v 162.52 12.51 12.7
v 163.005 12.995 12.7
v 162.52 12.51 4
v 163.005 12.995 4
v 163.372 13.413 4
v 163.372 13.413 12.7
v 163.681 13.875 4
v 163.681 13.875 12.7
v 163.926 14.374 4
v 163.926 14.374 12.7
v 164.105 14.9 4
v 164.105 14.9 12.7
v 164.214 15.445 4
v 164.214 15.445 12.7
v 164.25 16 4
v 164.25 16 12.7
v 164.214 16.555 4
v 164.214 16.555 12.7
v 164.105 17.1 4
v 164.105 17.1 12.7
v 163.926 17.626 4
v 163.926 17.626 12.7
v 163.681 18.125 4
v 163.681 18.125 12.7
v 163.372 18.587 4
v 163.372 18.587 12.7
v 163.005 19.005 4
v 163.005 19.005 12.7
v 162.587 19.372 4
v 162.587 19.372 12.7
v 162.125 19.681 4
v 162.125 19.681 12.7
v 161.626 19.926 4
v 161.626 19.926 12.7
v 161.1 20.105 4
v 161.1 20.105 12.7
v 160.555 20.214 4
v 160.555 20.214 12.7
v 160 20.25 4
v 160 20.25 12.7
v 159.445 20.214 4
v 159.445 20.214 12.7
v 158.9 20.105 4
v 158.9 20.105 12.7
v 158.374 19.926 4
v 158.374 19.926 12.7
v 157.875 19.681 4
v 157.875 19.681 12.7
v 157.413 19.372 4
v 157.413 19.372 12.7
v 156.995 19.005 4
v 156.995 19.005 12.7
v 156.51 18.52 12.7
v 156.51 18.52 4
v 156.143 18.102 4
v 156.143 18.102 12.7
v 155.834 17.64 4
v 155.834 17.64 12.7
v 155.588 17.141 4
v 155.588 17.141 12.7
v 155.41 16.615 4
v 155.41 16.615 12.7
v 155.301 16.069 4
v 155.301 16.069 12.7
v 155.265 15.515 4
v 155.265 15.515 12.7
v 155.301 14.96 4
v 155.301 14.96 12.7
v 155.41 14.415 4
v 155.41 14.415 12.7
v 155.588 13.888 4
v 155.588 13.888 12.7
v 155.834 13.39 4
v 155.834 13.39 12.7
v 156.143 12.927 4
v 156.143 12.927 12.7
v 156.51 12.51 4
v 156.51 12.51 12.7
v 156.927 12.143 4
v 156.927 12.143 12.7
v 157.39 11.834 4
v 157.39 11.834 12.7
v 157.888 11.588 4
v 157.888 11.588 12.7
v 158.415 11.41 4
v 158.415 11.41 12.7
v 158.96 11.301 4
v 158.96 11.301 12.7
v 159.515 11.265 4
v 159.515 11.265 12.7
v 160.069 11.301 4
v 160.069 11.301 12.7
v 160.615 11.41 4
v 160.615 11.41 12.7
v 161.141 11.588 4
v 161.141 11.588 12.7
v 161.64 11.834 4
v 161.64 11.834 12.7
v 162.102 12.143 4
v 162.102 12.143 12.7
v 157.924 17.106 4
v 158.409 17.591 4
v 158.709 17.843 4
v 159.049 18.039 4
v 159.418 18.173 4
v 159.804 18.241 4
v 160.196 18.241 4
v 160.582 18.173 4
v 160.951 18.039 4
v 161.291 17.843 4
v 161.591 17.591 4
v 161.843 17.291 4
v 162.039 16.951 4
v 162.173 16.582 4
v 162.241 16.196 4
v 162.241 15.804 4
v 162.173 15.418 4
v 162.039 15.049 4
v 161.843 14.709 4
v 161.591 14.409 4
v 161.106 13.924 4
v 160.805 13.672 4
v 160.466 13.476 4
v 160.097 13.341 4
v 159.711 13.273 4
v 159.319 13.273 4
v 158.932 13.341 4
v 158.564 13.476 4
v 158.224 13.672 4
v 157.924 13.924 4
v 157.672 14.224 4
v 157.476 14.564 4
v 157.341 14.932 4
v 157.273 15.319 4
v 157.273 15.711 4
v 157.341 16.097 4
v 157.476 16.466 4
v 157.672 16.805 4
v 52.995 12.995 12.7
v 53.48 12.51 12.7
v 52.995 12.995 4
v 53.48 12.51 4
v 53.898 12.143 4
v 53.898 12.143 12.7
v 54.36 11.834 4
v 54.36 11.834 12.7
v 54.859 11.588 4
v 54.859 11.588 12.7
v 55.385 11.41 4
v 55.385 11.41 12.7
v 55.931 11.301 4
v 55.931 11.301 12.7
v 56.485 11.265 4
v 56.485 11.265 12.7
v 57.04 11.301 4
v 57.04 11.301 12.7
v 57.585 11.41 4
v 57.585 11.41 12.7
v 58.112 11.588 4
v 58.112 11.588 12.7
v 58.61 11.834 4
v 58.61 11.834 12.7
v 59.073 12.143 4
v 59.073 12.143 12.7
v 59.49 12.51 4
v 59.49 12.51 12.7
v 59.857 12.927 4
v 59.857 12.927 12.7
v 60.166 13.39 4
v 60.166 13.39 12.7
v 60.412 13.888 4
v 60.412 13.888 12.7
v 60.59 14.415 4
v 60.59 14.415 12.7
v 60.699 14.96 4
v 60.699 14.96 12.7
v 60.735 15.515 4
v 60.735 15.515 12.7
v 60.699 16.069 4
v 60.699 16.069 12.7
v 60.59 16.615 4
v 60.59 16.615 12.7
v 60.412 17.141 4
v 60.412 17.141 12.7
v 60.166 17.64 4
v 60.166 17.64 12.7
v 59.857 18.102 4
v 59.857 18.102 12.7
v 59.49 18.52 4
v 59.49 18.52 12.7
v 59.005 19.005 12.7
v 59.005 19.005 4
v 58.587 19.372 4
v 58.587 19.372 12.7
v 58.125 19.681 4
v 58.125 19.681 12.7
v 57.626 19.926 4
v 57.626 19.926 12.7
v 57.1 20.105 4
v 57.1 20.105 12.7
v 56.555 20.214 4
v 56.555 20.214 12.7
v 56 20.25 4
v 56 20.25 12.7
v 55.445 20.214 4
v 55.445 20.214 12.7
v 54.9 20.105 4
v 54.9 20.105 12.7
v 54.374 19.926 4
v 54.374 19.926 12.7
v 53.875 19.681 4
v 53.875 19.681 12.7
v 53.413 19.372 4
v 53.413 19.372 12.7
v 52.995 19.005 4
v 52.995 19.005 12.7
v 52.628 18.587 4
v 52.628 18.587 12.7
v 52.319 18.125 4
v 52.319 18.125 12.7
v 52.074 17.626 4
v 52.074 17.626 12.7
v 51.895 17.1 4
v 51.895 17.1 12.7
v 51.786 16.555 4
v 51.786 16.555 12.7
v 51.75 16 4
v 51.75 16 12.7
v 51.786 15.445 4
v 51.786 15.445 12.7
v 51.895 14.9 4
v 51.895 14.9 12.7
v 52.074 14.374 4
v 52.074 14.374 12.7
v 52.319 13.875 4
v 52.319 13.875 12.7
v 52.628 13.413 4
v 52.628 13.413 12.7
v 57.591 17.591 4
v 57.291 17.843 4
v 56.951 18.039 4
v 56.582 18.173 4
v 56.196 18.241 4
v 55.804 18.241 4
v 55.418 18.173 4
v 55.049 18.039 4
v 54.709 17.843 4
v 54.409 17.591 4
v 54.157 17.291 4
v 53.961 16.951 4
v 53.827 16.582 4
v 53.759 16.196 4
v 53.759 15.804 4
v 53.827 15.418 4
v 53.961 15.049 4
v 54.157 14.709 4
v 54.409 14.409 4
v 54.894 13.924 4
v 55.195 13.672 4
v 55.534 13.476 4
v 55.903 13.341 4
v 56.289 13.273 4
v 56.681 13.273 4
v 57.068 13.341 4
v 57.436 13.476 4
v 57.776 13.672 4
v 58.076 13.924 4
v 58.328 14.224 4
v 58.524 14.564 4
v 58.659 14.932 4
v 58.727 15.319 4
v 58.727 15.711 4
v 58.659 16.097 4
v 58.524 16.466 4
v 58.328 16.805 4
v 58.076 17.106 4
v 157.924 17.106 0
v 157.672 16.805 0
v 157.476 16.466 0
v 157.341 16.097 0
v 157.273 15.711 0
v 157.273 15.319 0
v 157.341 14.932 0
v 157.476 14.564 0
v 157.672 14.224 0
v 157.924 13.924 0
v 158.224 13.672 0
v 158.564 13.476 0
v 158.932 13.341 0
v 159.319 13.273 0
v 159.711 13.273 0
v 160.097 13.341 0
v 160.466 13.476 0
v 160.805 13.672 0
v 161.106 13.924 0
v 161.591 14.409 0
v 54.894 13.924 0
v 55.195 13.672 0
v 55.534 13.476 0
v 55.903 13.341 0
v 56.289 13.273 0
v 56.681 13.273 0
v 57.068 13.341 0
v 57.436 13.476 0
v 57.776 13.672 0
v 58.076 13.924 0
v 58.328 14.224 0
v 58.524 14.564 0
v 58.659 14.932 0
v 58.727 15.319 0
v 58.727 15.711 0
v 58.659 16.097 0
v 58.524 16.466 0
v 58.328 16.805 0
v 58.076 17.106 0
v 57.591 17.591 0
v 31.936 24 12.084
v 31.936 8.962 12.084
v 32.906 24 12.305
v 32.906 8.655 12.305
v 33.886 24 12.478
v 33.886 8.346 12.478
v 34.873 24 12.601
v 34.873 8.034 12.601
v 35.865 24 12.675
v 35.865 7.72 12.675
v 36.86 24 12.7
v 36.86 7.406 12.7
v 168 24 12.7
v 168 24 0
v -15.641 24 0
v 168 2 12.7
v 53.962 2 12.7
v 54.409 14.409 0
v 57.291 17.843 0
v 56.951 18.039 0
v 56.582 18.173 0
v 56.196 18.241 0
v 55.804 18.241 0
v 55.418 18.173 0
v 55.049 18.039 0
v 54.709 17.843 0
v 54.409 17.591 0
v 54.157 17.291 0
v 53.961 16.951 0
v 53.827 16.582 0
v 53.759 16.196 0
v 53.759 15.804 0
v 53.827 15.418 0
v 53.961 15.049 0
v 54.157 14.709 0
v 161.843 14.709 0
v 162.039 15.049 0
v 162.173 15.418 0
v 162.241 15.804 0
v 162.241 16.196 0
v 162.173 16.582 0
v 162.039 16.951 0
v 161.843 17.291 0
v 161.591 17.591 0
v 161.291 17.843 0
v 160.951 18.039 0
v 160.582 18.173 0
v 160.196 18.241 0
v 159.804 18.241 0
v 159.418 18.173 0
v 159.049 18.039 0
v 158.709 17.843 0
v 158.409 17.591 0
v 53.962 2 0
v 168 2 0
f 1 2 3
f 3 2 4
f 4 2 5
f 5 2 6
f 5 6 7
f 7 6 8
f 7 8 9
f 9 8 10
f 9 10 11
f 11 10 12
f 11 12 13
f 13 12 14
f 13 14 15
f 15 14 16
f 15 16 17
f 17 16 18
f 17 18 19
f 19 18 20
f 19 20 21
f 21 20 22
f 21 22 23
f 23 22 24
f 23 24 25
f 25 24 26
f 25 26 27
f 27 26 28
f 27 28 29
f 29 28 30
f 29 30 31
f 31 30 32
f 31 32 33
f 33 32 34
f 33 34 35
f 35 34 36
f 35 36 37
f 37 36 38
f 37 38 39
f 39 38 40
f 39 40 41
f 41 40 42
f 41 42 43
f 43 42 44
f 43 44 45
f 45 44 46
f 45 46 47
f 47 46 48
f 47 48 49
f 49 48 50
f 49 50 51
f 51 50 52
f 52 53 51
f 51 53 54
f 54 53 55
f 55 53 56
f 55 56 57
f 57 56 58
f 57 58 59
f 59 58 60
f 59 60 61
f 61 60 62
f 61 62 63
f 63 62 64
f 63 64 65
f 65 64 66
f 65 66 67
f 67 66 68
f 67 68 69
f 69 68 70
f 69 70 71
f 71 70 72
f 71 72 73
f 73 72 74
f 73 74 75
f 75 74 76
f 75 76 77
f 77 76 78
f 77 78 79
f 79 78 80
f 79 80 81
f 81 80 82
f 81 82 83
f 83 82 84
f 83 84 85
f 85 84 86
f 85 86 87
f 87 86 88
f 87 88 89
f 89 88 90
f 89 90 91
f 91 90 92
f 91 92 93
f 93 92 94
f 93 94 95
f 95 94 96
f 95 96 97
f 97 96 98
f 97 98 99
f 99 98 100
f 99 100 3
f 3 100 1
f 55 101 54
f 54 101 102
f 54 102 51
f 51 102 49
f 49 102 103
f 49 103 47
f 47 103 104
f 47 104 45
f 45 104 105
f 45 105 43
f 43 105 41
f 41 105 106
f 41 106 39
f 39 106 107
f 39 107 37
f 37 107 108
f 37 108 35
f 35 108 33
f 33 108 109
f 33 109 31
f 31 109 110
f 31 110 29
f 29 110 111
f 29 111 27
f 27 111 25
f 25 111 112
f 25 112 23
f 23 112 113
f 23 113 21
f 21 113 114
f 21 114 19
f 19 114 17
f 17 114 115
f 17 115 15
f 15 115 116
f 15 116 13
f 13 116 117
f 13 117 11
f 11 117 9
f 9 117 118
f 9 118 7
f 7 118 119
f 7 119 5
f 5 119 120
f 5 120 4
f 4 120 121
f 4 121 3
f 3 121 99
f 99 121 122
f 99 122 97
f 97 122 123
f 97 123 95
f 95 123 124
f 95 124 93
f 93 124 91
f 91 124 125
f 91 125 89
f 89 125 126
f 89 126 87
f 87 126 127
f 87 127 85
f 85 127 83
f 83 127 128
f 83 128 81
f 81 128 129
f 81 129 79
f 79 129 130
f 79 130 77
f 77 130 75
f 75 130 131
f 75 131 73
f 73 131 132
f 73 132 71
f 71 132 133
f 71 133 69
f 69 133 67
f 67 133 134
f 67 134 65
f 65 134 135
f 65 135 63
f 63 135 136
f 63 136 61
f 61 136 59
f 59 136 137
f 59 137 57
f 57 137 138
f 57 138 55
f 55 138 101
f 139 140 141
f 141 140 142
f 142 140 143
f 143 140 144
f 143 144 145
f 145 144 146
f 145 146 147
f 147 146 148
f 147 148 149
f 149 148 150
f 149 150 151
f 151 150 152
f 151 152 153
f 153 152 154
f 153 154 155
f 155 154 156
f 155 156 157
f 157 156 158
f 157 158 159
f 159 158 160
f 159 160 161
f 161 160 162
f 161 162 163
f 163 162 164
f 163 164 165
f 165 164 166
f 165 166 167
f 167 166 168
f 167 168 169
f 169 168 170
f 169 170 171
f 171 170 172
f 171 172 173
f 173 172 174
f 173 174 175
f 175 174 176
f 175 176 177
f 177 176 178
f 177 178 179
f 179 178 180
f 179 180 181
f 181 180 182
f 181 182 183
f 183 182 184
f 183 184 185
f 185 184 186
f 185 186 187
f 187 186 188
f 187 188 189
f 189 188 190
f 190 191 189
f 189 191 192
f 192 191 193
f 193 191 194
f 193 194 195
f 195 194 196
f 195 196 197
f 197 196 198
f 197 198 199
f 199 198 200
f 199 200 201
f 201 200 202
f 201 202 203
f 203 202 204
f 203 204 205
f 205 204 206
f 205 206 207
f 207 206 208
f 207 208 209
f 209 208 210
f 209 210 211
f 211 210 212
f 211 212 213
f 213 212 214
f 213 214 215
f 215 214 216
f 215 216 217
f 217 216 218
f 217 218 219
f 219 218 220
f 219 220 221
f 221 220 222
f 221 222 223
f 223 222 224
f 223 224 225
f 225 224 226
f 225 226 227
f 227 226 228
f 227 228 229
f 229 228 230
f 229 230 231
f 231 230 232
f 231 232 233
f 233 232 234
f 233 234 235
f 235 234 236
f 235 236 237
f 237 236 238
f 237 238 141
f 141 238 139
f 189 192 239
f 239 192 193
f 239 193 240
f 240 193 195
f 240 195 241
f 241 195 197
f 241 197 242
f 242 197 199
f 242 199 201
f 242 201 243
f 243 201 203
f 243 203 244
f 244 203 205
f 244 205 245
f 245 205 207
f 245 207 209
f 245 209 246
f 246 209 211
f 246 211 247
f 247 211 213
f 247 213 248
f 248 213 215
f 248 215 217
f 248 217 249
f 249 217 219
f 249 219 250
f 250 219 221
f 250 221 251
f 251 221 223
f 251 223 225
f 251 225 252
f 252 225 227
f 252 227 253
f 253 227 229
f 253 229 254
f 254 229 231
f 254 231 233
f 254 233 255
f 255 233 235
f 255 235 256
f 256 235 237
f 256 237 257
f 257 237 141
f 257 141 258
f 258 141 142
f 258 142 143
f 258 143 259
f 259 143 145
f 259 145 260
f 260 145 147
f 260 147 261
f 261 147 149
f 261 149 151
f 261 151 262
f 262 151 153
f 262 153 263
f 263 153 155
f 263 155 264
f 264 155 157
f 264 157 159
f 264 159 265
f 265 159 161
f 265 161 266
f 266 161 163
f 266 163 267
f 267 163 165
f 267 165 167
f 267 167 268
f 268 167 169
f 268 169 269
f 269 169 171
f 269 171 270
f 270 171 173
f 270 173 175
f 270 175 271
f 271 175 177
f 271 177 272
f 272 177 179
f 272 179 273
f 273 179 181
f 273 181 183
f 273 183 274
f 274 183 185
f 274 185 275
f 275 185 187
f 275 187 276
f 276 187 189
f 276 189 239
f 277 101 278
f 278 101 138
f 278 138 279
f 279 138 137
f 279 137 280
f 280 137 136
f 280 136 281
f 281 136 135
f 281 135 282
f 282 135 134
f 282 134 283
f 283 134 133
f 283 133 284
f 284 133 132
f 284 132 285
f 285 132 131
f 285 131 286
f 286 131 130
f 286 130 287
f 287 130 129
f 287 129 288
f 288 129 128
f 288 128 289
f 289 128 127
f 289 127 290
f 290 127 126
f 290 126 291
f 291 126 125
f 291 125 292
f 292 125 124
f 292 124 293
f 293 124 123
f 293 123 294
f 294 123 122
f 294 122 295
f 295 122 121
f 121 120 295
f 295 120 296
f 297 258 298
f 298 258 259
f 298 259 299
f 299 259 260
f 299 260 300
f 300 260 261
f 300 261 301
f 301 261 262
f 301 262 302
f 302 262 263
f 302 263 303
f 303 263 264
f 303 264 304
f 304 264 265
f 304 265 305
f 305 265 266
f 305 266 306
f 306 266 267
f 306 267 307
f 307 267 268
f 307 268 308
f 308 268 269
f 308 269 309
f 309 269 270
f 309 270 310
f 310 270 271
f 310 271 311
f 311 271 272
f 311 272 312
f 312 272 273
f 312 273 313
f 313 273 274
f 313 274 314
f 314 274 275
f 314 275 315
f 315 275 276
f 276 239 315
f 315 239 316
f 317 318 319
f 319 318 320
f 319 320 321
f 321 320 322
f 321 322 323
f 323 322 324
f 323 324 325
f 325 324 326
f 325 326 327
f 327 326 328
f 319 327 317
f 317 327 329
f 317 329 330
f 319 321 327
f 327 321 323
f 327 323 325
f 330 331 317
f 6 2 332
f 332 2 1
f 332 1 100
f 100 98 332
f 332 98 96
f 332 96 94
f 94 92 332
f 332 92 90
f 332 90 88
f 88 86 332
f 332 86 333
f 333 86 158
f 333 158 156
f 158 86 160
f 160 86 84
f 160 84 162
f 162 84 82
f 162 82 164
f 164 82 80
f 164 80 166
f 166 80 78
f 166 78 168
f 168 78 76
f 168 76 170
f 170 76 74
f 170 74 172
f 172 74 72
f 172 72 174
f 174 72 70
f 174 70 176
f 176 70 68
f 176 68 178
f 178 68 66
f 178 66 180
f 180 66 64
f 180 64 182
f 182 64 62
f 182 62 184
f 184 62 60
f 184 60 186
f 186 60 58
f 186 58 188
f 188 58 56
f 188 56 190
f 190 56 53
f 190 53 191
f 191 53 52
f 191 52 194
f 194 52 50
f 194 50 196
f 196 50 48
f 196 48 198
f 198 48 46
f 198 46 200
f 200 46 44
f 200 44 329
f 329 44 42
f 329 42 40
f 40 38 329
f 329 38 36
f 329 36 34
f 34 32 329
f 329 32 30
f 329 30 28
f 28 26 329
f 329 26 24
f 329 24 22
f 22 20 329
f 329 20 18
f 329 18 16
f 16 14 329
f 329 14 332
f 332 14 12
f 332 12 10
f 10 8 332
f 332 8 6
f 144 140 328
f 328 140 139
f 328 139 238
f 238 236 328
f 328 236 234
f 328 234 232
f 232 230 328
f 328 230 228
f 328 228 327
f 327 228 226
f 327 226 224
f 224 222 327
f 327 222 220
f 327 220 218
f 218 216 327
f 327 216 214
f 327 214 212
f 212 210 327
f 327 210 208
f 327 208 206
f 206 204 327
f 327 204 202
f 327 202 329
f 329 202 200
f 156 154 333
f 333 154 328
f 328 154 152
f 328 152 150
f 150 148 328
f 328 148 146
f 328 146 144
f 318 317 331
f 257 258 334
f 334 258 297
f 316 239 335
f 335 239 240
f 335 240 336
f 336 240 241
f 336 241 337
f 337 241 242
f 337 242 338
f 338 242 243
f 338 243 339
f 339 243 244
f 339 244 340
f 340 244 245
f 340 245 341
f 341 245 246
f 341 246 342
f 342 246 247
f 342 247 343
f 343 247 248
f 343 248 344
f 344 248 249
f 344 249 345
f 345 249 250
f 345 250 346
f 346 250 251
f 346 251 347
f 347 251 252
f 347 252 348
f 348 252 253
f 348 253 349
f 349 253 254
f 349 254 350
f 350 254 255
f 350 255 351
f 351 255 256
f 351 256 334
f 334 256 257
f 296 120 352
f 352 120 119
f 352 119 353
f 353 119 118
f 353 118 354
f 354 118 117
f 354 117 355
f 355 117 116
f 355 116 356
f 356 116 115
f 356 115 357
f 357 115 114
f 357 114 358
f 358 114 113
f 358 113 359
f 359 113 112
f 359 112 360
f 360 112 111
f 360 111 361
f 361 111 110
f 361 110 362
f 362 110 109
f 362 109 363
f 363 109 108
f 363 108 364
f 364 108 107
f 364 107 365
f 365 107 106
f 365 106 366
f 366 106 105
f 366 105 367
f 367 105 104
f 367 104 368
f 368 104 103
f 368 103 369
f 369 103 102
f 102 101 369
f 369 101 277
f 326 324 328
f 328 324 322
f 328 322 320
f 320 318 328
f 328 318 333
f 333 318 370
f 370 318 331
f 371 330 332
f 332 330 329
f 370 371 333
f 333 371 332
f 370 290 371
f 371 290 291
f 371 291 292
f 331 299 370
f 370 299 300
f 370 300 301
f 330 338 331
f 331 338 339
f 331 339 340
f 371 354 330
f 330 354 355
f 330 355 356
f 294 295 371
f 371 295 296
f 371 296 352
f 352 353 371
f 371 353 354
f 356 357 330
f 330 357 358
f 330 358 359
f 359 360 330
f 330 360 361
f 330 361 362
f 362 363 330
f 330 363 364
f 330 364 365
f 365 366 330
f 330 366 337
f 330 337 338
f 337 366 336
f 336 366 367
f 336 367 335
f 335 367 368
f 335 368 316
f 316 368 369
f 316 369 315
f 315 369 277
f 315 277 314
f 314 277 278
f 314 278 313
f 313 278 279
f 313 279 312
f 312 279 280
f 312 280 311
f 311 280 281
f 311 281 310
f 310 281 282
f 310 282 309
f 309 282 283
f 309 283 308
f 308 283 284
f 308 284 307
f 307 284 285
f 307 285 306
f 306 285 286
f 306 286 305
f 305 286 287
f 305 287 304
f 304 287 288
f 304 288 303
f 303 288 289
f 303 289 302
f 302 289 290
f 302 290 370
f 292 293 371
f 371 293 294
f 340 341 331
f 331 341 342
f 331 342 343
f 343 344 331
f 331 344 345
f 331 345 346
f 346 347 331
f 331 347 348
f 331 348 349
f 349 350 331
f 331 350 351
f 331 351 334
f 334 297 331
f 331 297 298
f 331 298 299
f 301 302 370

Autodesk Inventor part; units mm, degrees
ref_plane "YZ Plane" through (0, 0, 0) normal (1, 0, 0) x (0, 1, 0)
ref_plane "XZ Plane" through (0, 0, 0) normal (0, 1, 0) x (-1, 0, 0)
ref_plane "XY Plane" through (0, 0, 0) normal (0, 0, 1) x (1, 0, 0)
ref_plane "Work Plane1" through (0, 0, 0) normal (0, 0, 1) x (1, 0, 0)
sketch "Sketch1" plane through (0, 0, 0) normal (0, 0, 1) x (1, 0, 0)
  line L0 (168, 0) -> (168, 48) projected
  line L1 (0, 48) -> (168, 48) projected
  line L2 (0, 0) -> (0, 48) projected
  line L3 (0, 0) -> (168, 0) projected
  circle A0 centre (144, 24) radius 7 projected
  circle A1 centre (120, 24) radius 7 projected
  arc A2 (136.9289, 33.8995) -> (134.1005, 31.0711) centre (135.5147, 32.4853) ccw projected
  line L4 (137.4142, 33.4142) -> (136.9289, 33.8995) projected
  arc A3 (134.5858, 30.5858) -> (137.4142, 33.4142) centre (136, 32) ccw projected
  line L5 (134.1005, 31.0711) -> (134.5858, 30.5858) projected
  line L6 (132.6863, 26) -> (131.3137, 26) projected
  arc A4 (132.6863, 22) -> (132.6863, 26) centre (132.6863, 24) ccw projected
  line L7 (131.3137, 22) -> (132.6863, 22) projected
  arc A5 (131.3137, 26) -> (131.3137, 22) centre (131.3137, 24) ccw projected
  arc A6 (134.1005, 16.9289) -> (136.9289, 14.1005) centre (135.5147, 15.5147) ccw projected
  line L8 (134.5858, 17.4142) -> (134.1005, 16.9289) projected
  arc A7 (137.4142, 14.5858) -> (134.5858, 17.4142) centre (136, 16) ccw projected
  line L9 (136.9289, 14.1005) -> (137.4142, 14.5858) projected
  arc A8 (153.8995, 31.0711) -> (151.0711, 33.8995) centre (152.4853, 32.4853) ccw projected
  line L10 (153.4142, 30.5858) -> (153.8995, 31.0711) projected
  arc A9 (150.5858, 33.4142) -> (153.4142, 30.5858) centre (152, 32) ccw projected
  line L11 (151.0711, 33.8995) -> (150.5858, 33.4142) projected
  arc A10 (156.6863, 22) -> (156.6863, 26) centre (156.6863, 24) ccw projected
  line L12 (155.3137, 22) -> (156.6863, 22) projected
  arc A11 (155.3137, 26) -> (155.3137, 22) centre (155.3137, 24) ccw projected
  line L13 (156.6863, 26) -> (155.3137, 26) projected
  line L14 (146, 35.3137) -> (146, 40) projected
  arc A12 (142, 35.3137) -> (146, 35.3137) centre (144, 35.3137) ccw projected
  line L15 (142, 40) -> (142, 35.3137) projected
  arc A13 (146, 40) -> (142, 40) centre (144, 40) ccw projected
  circle A14 centre (136, 40) radius 2 projected
  circle A15 centre (128, 40) radius 2 projected
  line L16 (122, 35.3137) -> (122, 40) projected
  arc A16 (118, 35.3137) -> (122, 35.3137) centre (120, 35.3137) ccw projected
  line L17 (118, 40) -> (118, 35.3137) projected
  arc A17 (122, 40) -> (118, 40) centre (120, 40) ccw projected
  circle A18 centre (112, 40) radius 2 projected
  circle A19 centre (104, 40) radius 2 projected
  line L18 (98, 35.3137) -> (98, 40) projected
  arc A20 (94, 35.3137) -> (98, 35.3137) centre (96, 35.3137) ccw projected
  line L19 (94, 40) -> (94, 35.3137) projected
  arc A21 (98, 40) -> (94, 40) centre (96, 40) ccw projected
  circle A22 centre (88, 40) radius 2 projected
  circle A23 centre (80, 40) radius 2 projected
  line L20 (74, 35.3137) -> (74, 40) projected
  arc A24 (70, 35.3137) -> (74, 35.3137) centre (72, 35.3137) ccw projected
  line L21 (70, 40) -> (70, 35.3137) projected
  arc A25 (74, 40) -> (70, 40) centre (72, 40) ccw projected
  circle A26 centre (64, 40) radius 2 projected
  circle A27 centre (56, 40) radius 2 projected
  line L22 (50, 35.3137) -> (50, 40) projected
  arc A28 (46, 35.3137) -> (50, 35.3137) centre (48, 35.3137) ccw projected
  line L23 (46, 40) -> (46, 35.3137) projected
  arc A29 (50, 40) -> (46, 40) centre (48, 40) ccw projected
  circle A30 centre (40, 40) radius 2 projected
  circle A31 centre (32, 40) radius 2 projected
  line L24 (26, 35.3137) -> (26, 40) projected
  arc A32 (22, 35.3137) -> (26, 35.3137) centre (24, 35.3137) ccw projected
  line L25 (22, 40) -> (22, 35.3137) projected
  arc A33 (26, 40) -> (22, 40) centre (24, 40) ccw projected
  circle A34 centre (16, 40) radius 2 projected
  circle A35 centre (8, 40) radius 2 projected
  line L26 (142, 12.6863) -> (142, 8) projected
  arc A36 (146, 12.6863) -> (142, 12.6863) centre (144, 12.6863) ccw projected
  line L27 (146, 8) -> (146, 12.6863) projected
  arc A37 (142, 8) -> (146, 8) centre (144, 8) ccw projected
  circle A38 centre (136, 8) radius 2 projected
  circle A39 centre (128, 8) radius 2 projected
  line L28 (118, 12.6863) -> (118, 8) projected
  arc A40 (122, 12.6863) -> (118, 12.6863) centre (120, 12.6863) ccw projected
  line L29 (122, 8) -> (122, 12.6863) projected
  arc A41 (118, 8) -> (122, 8) centre (120, 8) ccw projected
  circle A42 centre (112, 8) radius 2 projected
  circle A43 centre (104, 8) radius 2 projected
  line L30 (94, 12.6863) -> (94, 8) projected
  arc A44 (98, 12.6863) -> (94, 12.6863) centre (96, 12.6863) ccw projected
  line L31 (98, 8) -> (98, 12.6863) projected
  arc A45 (94, 8) -> (98, 8) centre (96, 8) ccw projected
  circle A46 centre (88, 8) radius 2 projected
  circle A47 centre (80, 8) radius 2 projected
  line L32 (70, 12.6863) -> (70, 8) projected
  arc A48 (74, 12.6863) -> (70, 12.6863) centre (72, 12.6863) ccw projected
  line L33 (74, 8) -> (74, 12.6863) projected
  arc A49 (70, 8) -> (74, 8) centre (72, 8) ccw projected
  circle A50 centre (64, 8) radius 2 projected
  circle A51 centre (56, 8) radius 2 projected
  line L34 (46, 12.6863) -> (46, 8) projected
  arc A52 (50, 12.6863) -> (46, 12.6863) centre (48, 12.6863) ccw projected
  line L35 (50, 8) -> (50, 12.6863) projected
  arc A53 (46, 8) -> (50, 8) centre (48, 8) ccw projected
  circle A54 centre (40, 8) radius 2 projected
  circle A55 centre (32, 8) radius 2 projected
  line L36 (22, 12.6863) -> (22, 8) projected
  arc A56 (26, 12.6863) -> (22, 12.6863) centre (24, 12.6863) ccw projected
  line L37 (26, 8) -> (26, 12.6863) projected
  arc A57 (22, 8) -> (26, 8) centre (24, 8) ccw projected
  circle A58 centre (16, 8) radius 2 projected
  circle A59 centre (8, 8) radius 2 projected
  arc A60 (9.8995, 31.0711) -> (7.0711, 33.8995) centre (8.4853, 32.4853) ccw projected
  line L38 (9.4142, 30.5858) -> (9.8995, 31.0711) projected
  arc A61 (6.5858, 33.4142) -> (9.4142, 30.5858) centre (8, 32) ccw projected
  line L39 (7.0711, 33.8995) -> (6.5858, 33.4142) projected
  arc A62 (7.0711, 14.1005) -> (9.8995, 16.9289) centre (8.4853, 15.5147) ccw projected
  line L40 (6.5858, 14.5858) -> (7.0711, 14.1005) projected
  arc A63 (9.4142, 17.4142) -> (6.5858, 14.5858) centre (8, 16) ccw projected
  line L41 (9.8995, 16.9289) -> (9.4142, 17.4142) projected
  arc A64 (160.9289, 33.8995) -> (158.1005, 31.0711) centre (159.5147, 32.4853) ccw projected
  line L42 (161.4142, 33.4142) -> (160.9289, 33.8995) projected
  arc A65 (158.5858, 30.5858) -> (161.4142, 33.4142) centre (160, 32) ccw projected
  line L43 (158.1005, 31.0711) -> (158.5858, 30.5858) projected
  arc A66 (158.1005, 16.9289) -> (160.9289, 14.1005) centre (159.5147, 15.5147) ccw projected
  line L44 (158.5858, 17.4142) -> (158.1005, 16.9289) projected
  arc A67 (161.4142, 14.5858) -> (158.5858, 17.4142) centre (160, 16) ccw projected
  line L45 (160.9289, 14.1005) -> (161.4142, 14.5858) projected
  circle A68 centre (152, 8) radius 2 projected
  circle A69 centre (152, 40) radius 2 projected
  circle A70 centre (160, 40) radius 2 projected
  circle A71 centre (160, 8) radius 2 projected
  arc A72 (33.8995, 31.0711) -> (31.0711, 33.8995) centre (32.4853, 32.4853) ccw projected
  line L46 (33.4142, 30.5858) -> (33.8995, 31.0711) projected
  arc A73 (30.5858, 33.4142) -> (33.4142, 30.5858) centre (32, 32) ccw projected
  line L47 (31.0711, 33.8995) -> (30.5858, 33.4142) projected
  arc A74 (57.8995, 31.0711) -> (55.0711, 33.8995) centre (56.4853, 32.4853) ccw projected
  line L48 (57.4142, 30.5858) -> (57.8995, 31.0711) projected
  arc A75 (54.5858, 33.4142) -> (57.4142, 30.5858) centre (56, 32) ccw projected
  line L49 (55.0711, 33.8995) -> (54.5858, 33.4142) projected
  arc A76 (81.8995, 31.0711) -> (79.0711, 33.8995) centre (80.4853, 32.4853) ccw projected
  line L50 (81.4142, 30.5858) -> (81.8995, 31.0711) projected
  arc A77 (78.5858, 33.4142) -> (81.4142, 30.5858) centre (80, 32) ccw projected
  line L51 (79.0711, 33.8995) -> (78.5858, 33.4142) projected
  arc A78 (105.8995, 31.0711) -> (103.0711, 33.8995) centre (104.4853, 32.4853) ccw projected
  line L52 (105.4142, 30.5858) -> (105.8995, 31.0711) projected
  arc A79 (102.5858, 33.4142) -> (105.4142, 30.5858) centre (104, 32) ccw projected
  line L53 (103.0711, 33.8995) -> (102.5858, 33.4142) projected
  arc A80 (129.8995, 31.0711) -> (127.0711, 33.8995) centre (128.4853, 32.4853) ccw projected
  line L54 (129.4142, 30.5858) -> (129.8995, 31.0711) projected
  arc A81 (126.5858, 33.4142) -> (129.4142, 30.5858) centre (128, 32) ccw projected
  line L55 (127.0711, 33.8995) -> (126.5858, 33.4142) projected
  arc A82 (14.1005, 16.9289) -> (16.9289, 14.1005) centre (15.5147, 15.5147) ccw projected
  line L56 (14.5858, 17.4142) -> (14.1005, 16.9289) projected
  arc A83 (17.4142, 14.5858) -> (14.5858, 17.4142) centre (16, 16) ccw projected
  line L57 (16.9289, 14.1005) -> (17.4142, 14.5858) projected
  arc A84 (38.1005, 16.9289) -> (40.9289, 14.1005) centre (39.5147, 15.5147) ccw projected
  line L58 (38.5858, 17.4142) -> (38.1005, 16.9289) projected
  arc A85 (41.4142, 14.5858) -> (38.5858, 17.4142) centre (40, 16) ccw projected
  line L59 (40.9289, 14.1005) -> (41.4142, 14.5858) projected
  arc A86 (62.1005, 16.9289) -> (64.9289, 14.1005) centre (63.5147, 15.5147) ccw projected
  line L60 (62.5858, 17.4142) -> (62.1005, 16.9289) projected
  arc A87 (65.4142, 14.5858) -> (62.5858, 17.4142) centre (64, 16) ccw projected
  line L61 (64.9289, 14.1005) -> (65.4142, 14.5858) projected
  arc A88 (86.1005, 16.9289) -> (88.9289, 14.1005) centre (87.5147, 15.5147) ccw projected
  line L62 (86.5858, 17.4142) -> (86.1005, 16.9289) projected
  arc A89 (89.4142, 14.5858) -> (86.5858, 17.4142) centre (88, 16) ccw projected
  line L63 (88.9289, 14.1005) -> (89.4142, 14.5858) projected
  arc A90 (110.1005, 16.9289) -> (112.9289, 14.1005) centre (111.5147, 15.5147) ccw projected
  line L64 (110.5858, 17.4142) -> (110.1005, 16.9289) projected
  arc A91 (113.4142, 14.5858) -> (110.5858, 17.4142) centre (112, 16) ccw projected
  line L65 (112.9289, 14.1005) -> (113.4142, 14.5858) projected
  line L66 (11.3137, 22) -> (12.6863, 22) projected
  arc A92 (11.3137, 26) -> (11.3137, 22) centre (11.3137, 24) ccw projected
  line L67 (12.6863, 26) -> (11.3137, 26) projected
  arc A93 (12.6863, 22) -> (12.6863, 26) centre (12.6863, 24) ccw projected
  line L68 (36.6863, 26) -> (35.3137, 26) projected
  arc A94 (36.6863, 22) -> (36.6863, 26) centre (36.6863, 24) ccw projected
  line L69 (35.3137, 22) -> (36.6863, 22) projected
  arc A95 (35.3137, 26) -> (35.3137, 22) centre (35.3137, 24) ccw projected
  line L70 (60.6863, 26) -> (59.3137, 26) projected
  arc A96 (60.6863, 22) -> (60.6863, 26) centre (60.6863, 24) ccw projected
  line L71 (59.3137, 22) -> (60.6863, 22) projected
  arc A97 (59.3137, 26) -> (59.3137, 22) centre (59.3137, 24) ccw projected
  line L72 (84.6863, 26) -> (83.3137, 26) projected
  arc A98 (84.6863, 22) -> (84.6863, 26) centre (84.6863, 24) ccw projected
  line L73 (83.3137, 22) -> (84.6863, 22) projected
  arc A99 (83.3137, 26) -> (83.3137, 22) centre (83.3137, 24) ccw projected
  line L74 (108.6863, 26) -> (107.3137, 26) projected
  arc A100 (108.6863, 22) -> (108.6863, 26) centre (108.6863, 24) ccw projected
  line L75 (107.3137, 22) -> (108.6863, 22) projected
  arc A101 (107.3137, 26) -> (107.3137, 22) centre (107.3137, 24) ccw projected
  arc A102 (16.9289, 33.8995) -> (14.1005, 31.0711) centre (15.5147, 32.4853) ccw projected
  line L76 (17.4142, 33.4142) -> (16.9289, 33.8995) projected
  arc A103 (14.5858, 30.5858) -> (17.4142, 33.4142) centre (16, 32) ccw projected
  line L77 (14.1005, 31.0711) -> (14.5858, 30.5858) projected
  arc A104 (40.9289, 33.8995) -> (38.1005, 31.0711) centre (39.5147, 32.4853) ccw projected
  line L78 (41.4142, 33.4142) -> (40.9289, 33.8995) projected
  arc A105 (38.5858, 30.5858) -> (41.4142, 33.4142) centre (40, 32) ccw projected
  line L79 (38.1005, 31.0711) -> (38.5858, 30.5858) projected
  arc A106 (64.9289, 33.8995) -> (62.1005, 31.0711) centre (63.5147, 32.4853) ccw projected
  line L80 (65.4142, 33.4142) -> (64.9289, 33.8995) projected
  arc A107 (62.5858, 30.5858) -> (65.4142, 33.4142) centre (64, 32) ccw projected
  line L81 (62.1005, 31.0711) -> (62.5858, 30.5858) projected
  arc A108 (88.9289, 33.8995) -> (86.1005, 31.0711) centre (87.5147, 32.4853) ccw projected
  line L82 (89.4142, 33.4142) -> (88.9289, 33.8995) projected
  arc A109 (86.5858, 30.5858) -> (89.4142, 33.4142) centre (88, 32) ccw projected
  line L83 (86.1005, 31.0711) -> (86.5858, 30.5858) projected
  arc A110 (112.9289, 33.8995) -> (110.1005, 31.0711) centre (111.5147, 32.4853) ccw projected
  line L84 (113.4142, 33.4142) -> (112.9289, 33.8995) projected
  arc A111 (110.5858, 30.5858) -> (113.4142, 33.4142) centre (112, 32) ccw projected
  line L85 (110.1005, 31.0711) -> (110.5858, 30.5858) projected
  arc A112 (31.0711, 14.1005) -> (33.8995, 16.9289) centre (32.4853, 15.5147) ccw projected
  line L86 (30.5858, 14.5858) -> (31.0711, 14.1005) projected
  arc A113 (33.4142, 17.4142) -> (30.5858, 14.5858) centre (32, 16) ccw projected
  line L87 (33.8995, 16.9289) -> (33.4142, 17.4142) projected
  arc A114 (55.0711, 14.1005) -> (57.8995, 16.9289) centre (56.4853, 15.5147) ccw projected
  line L88 (54.5858, 14.5858) -> (55.0711, 14.1005) projected
  arc A115 (57.4142, 17.4142) -> (54.5858, 14.5858) centre (56, 16) ccw projected
  line L89 (57.8995, 16.9289) -> (57.4142, 17.4142) projected
  arc A116 (79.0711, 14.1005) -> (81.8995, 16.9289) centre (80.4853, 15.5147) ccw projected
  line L90 (78.5858, 14.5858) -> (79.0711, 14.1005) projected
  arc A117 (81.4142, 17.4142) -> (78.5858, 14.5858) centre (80, 16) ccw projected
  line L91 (81.8995, 16.9289) -> (81.4142, 17.4142) projected
  arc A118 (103.0711, 14.1005) -> (105.8995, 16.9289) centre (104.4853, 15.5147) ccw projected
  line L92 (102.5858, 14.5858) -> (103.0711, 14.1005) projected
  arc A119 (105.4142, 17.4142) -> (102.5858, 14.5858) centre (104, 16) ccw projected
  line L93 (105.8995, 16.9289) -> (105.4142, 17.4142) projected
  arc A120 (127.0711, 14.1005) -> (129.8995, 16.9289) centre (128.4853, 15.5147) ccw projected
  line L94 (126.5858, 14.5858) -> (127.0711, 14.1005) projected
  arc A121 (129.4142, 17.4142) -> (126.5858, 14.5858) centre (128, 16) ccw projected
  line L95 (129.8995, 16.9289) -> (129.4142, 17.4142) projected
  arc A122 (151.0711, 14.1005) -> (153.8995, 16.9289) centre (152.4853, 15.5147) ccw projected
  line L96 (150.5858, 14.5858) -> (151.0711, 14.1005) projected
  arc A123 (153.4142, 17.4142) -> (150.5858, 14.5858) centre (152, 16) ccw projected
  line L97 (153.8995, 16.9289) -> (153.4142, 17.4142) projected
  circle A124 centre (24, 24) radius 7 projected
  circle A125 centre (48, 24) radius 7 projected
  circle A126 centre (72, 24) radius 7 projected
  circle A127 centre (96, 24) radius 7 projected
  line L98 (168, 24) -> (-50.2098, 24)
  line L99 (-21.6738, 25.907) -> (54.2558, 1.907)
  line L100 (166, 46) -> (2, 46)
  line L101 (2, 46) -> (2, 2)
  line L102 (2, 2) -> (168, 2)
  line L103 (54.409, 14.409) -> (54.8943, 13.9237)
  arc A128 (54.8943, 13.9237) -> (58.0763, 17.1057) centre (56.4853, 15.5147) ccw
  line L104 (58.0763, 17.1057) -> (57.591, 17.591)
  arc A129 (57.591, 17.591) -> (54.409, 14.409) centre (56, 16) ccw
  arc A130 (157.9237, 17.1057) -> (161.1057, 13.9237) centre (159.5147, 15.5147) ccw
  line L105 (157.9237, 17.1057) -> (158.409, 17.591)
  arc A131 (161.591, 14.409) -> (158.409, 17.591) centre (160, 16) ccw
  line L106 (161.591, 14.409) -> (161.1057, 13.9237)
  point P0 (-15.6405, 24)
  point P1 (53.9616, 2)
  dimension "d1" = 2
  dimension "d2" = 0.25
  dimension "d3" = 0.25
extrude "Extrusion1" add sketch "Sketch1" along normal blind 12.7 contours L102 L99 A54 A55 L37 A56 L36 A82 L57 A83 L56 A62 L41 A63 L101 L98 A92 L66 A93 A124 A95 L69 A94 A125 A97 L71 A96 A126 A99 L73 A98 A127 A101 L75 A100 A1 A5 L7 A4 A0 A11 L12 A10 L0 | L99 L98 L2 | L2 L98 L101 L99 | A10 L12 A11 L98 | L99 A54 | A63 L41 A62 L99 | A0 L98 | L99 A55 | L98 A93 L66 A92 | A82 L56 A83 L57 L99 | A4 L7 A5 L98 | L99 L36 A56 L37 | L98 A124 | A1 L98 | L98 A94 L69 A95 | A100 L75 A101 L98 | L98 A125 | A127 L98 | L98 A96 L71 A97 | A98 L73 A99 L98 | L98 A126 | L8 A7 L9 A6 | A36 L27 A37 L26 | A38 | A39 | A40 L29 A41 L28 | A42 | A43 | A44 L31 A45 L30 | A46 | A47 | A48 L33 A49 L32 | A50 | A51 | A52 L35 A53 L34 | A68 | A71 | L58 A85 L59 A84 | L60 A87 L61 A86 | L62 A89 L63 A88 | L64 A91 L65 A90 | L86 A113 L87 A112 | L90 A117 L91 A116 | L92 A119 L93 A118 | L94 A121 L95 A120 | L96 A123 L97 A122 picked at (40.4231, 8.1099) picked at (145.645, 19.4481) picked at (32.4577, 9.177) picked at (22.475, 20.4369) picked at (119.7187, 21.6837) picked at (47.7187, 21.6837) picked at (95.7187, 21.6837) picked at (71.7187, 21.6837)
sketch "Sketch2" plane through (-15.6405, 24, 0) normal (0, 1, 0) x (1, 0, 0)
  line L0 (183.6405, 0) -> (0, 0) projected
  line L1 (0, 0) -> (50, -12.7)
  line L2 (183.6405, 0) -> (0, 0) projected
  line L3 (0, 0) -> (0, -12.7) projected
  line L4 (183.6405, -12.7) -> (0, -12.7) projected
  line L5 (183.6405, 0) -> (183.6405, -12.7) projected
  line L6 (183.6405, -12.7) -> (0, -12.7) projected
  point P0 (15.6405, 0)
  point P1 (0, 0)
  dimension "d6" = 50
extrude "Extrusion2" cut sketch "Sketch2" against normal blind 25 contours L1 L4 L3
fillet "Fillet1" radius 20 1 edges at (34.3595, 16.0979, 12.7)
sketch "Sketch4" plane through (0, 0, 12.7) normal (0, 0, 1) x (1, 0, 0)
  line L0 (36.8598, 7.4056) -> (36.8598, 24) projected
  line L1 (36.8598, 7.4056) -> (53.9616, 2) projected
  line L2 (53.9616, 2) -> (168, 2) projected
  line L3 (168, 2) -> (168, 24) projected
  line L4 (168, 24) -> (36.8598, 24) projected
  line L5 (161.591, 14.409) -> (161.1057, 13.9237) projected
  arc A0 (157.9237, 17.1057) -> (161.1057, 13.9237) centre (159.5147, 15.5147) ccw projected
  line L6 (157.9237, 17.1057) -> (158.409, 17.591) projected
  arc A1 (161.591, 14.409) -> (158.409, 17.591) centre (160, 16) ccw projected
  arc A2 (57.591, 17.591) -> (54.409, 14.409) centre (56, 16) ccw projected
  line L7 (57.591, 17.591) -> (58.0763, 17.1057) projected
  arc A3 (54.8943, 13.9237) -> (58.0763, 17.1057) centre (56.4853, 15.5147) ccw projected
  line L8 (54.8943, 13.9237) -> (54.409, 14.409) projected
  line L9 (59.4905, 18.5199) -> (59.0052, 19.0052)
  arc A4 (59.0052, 19.0052) -> (52.9948, 12.9948) centre (56, 16) ccw
  line L10 (52.9948, 12.9948) -> (53.4801, 12.5095)
  arc A5 (53.4801, 12.5095) -> (59.4905, 18.5199) centre (56.4853, 15.5147) ccw
  line L11 (156.9948, 19.0052) -> (156.5095, 18.5199)
  arc A6 (156.5095, 18.5199) -> (162.5199, 12.5095) centre (159.5147, 15.5147) ccw
  line L12 (162.5199, 12.5095) -> (163.0052, 12.9948)
  arc A7 (163.0052, 12.9948) -> (156.9948, 19.0052) centre (160, 16) ccw
  point P0 (0, 0)
  dimension "d10" = 2
  dimension "d11" = 2
extrude "Extrusion3" cut sketch "Sketch4" against normal blind 8.7 contours A5 L10 A4 L9 | A7 L12 A6 L11
properties part number "shooter side"
